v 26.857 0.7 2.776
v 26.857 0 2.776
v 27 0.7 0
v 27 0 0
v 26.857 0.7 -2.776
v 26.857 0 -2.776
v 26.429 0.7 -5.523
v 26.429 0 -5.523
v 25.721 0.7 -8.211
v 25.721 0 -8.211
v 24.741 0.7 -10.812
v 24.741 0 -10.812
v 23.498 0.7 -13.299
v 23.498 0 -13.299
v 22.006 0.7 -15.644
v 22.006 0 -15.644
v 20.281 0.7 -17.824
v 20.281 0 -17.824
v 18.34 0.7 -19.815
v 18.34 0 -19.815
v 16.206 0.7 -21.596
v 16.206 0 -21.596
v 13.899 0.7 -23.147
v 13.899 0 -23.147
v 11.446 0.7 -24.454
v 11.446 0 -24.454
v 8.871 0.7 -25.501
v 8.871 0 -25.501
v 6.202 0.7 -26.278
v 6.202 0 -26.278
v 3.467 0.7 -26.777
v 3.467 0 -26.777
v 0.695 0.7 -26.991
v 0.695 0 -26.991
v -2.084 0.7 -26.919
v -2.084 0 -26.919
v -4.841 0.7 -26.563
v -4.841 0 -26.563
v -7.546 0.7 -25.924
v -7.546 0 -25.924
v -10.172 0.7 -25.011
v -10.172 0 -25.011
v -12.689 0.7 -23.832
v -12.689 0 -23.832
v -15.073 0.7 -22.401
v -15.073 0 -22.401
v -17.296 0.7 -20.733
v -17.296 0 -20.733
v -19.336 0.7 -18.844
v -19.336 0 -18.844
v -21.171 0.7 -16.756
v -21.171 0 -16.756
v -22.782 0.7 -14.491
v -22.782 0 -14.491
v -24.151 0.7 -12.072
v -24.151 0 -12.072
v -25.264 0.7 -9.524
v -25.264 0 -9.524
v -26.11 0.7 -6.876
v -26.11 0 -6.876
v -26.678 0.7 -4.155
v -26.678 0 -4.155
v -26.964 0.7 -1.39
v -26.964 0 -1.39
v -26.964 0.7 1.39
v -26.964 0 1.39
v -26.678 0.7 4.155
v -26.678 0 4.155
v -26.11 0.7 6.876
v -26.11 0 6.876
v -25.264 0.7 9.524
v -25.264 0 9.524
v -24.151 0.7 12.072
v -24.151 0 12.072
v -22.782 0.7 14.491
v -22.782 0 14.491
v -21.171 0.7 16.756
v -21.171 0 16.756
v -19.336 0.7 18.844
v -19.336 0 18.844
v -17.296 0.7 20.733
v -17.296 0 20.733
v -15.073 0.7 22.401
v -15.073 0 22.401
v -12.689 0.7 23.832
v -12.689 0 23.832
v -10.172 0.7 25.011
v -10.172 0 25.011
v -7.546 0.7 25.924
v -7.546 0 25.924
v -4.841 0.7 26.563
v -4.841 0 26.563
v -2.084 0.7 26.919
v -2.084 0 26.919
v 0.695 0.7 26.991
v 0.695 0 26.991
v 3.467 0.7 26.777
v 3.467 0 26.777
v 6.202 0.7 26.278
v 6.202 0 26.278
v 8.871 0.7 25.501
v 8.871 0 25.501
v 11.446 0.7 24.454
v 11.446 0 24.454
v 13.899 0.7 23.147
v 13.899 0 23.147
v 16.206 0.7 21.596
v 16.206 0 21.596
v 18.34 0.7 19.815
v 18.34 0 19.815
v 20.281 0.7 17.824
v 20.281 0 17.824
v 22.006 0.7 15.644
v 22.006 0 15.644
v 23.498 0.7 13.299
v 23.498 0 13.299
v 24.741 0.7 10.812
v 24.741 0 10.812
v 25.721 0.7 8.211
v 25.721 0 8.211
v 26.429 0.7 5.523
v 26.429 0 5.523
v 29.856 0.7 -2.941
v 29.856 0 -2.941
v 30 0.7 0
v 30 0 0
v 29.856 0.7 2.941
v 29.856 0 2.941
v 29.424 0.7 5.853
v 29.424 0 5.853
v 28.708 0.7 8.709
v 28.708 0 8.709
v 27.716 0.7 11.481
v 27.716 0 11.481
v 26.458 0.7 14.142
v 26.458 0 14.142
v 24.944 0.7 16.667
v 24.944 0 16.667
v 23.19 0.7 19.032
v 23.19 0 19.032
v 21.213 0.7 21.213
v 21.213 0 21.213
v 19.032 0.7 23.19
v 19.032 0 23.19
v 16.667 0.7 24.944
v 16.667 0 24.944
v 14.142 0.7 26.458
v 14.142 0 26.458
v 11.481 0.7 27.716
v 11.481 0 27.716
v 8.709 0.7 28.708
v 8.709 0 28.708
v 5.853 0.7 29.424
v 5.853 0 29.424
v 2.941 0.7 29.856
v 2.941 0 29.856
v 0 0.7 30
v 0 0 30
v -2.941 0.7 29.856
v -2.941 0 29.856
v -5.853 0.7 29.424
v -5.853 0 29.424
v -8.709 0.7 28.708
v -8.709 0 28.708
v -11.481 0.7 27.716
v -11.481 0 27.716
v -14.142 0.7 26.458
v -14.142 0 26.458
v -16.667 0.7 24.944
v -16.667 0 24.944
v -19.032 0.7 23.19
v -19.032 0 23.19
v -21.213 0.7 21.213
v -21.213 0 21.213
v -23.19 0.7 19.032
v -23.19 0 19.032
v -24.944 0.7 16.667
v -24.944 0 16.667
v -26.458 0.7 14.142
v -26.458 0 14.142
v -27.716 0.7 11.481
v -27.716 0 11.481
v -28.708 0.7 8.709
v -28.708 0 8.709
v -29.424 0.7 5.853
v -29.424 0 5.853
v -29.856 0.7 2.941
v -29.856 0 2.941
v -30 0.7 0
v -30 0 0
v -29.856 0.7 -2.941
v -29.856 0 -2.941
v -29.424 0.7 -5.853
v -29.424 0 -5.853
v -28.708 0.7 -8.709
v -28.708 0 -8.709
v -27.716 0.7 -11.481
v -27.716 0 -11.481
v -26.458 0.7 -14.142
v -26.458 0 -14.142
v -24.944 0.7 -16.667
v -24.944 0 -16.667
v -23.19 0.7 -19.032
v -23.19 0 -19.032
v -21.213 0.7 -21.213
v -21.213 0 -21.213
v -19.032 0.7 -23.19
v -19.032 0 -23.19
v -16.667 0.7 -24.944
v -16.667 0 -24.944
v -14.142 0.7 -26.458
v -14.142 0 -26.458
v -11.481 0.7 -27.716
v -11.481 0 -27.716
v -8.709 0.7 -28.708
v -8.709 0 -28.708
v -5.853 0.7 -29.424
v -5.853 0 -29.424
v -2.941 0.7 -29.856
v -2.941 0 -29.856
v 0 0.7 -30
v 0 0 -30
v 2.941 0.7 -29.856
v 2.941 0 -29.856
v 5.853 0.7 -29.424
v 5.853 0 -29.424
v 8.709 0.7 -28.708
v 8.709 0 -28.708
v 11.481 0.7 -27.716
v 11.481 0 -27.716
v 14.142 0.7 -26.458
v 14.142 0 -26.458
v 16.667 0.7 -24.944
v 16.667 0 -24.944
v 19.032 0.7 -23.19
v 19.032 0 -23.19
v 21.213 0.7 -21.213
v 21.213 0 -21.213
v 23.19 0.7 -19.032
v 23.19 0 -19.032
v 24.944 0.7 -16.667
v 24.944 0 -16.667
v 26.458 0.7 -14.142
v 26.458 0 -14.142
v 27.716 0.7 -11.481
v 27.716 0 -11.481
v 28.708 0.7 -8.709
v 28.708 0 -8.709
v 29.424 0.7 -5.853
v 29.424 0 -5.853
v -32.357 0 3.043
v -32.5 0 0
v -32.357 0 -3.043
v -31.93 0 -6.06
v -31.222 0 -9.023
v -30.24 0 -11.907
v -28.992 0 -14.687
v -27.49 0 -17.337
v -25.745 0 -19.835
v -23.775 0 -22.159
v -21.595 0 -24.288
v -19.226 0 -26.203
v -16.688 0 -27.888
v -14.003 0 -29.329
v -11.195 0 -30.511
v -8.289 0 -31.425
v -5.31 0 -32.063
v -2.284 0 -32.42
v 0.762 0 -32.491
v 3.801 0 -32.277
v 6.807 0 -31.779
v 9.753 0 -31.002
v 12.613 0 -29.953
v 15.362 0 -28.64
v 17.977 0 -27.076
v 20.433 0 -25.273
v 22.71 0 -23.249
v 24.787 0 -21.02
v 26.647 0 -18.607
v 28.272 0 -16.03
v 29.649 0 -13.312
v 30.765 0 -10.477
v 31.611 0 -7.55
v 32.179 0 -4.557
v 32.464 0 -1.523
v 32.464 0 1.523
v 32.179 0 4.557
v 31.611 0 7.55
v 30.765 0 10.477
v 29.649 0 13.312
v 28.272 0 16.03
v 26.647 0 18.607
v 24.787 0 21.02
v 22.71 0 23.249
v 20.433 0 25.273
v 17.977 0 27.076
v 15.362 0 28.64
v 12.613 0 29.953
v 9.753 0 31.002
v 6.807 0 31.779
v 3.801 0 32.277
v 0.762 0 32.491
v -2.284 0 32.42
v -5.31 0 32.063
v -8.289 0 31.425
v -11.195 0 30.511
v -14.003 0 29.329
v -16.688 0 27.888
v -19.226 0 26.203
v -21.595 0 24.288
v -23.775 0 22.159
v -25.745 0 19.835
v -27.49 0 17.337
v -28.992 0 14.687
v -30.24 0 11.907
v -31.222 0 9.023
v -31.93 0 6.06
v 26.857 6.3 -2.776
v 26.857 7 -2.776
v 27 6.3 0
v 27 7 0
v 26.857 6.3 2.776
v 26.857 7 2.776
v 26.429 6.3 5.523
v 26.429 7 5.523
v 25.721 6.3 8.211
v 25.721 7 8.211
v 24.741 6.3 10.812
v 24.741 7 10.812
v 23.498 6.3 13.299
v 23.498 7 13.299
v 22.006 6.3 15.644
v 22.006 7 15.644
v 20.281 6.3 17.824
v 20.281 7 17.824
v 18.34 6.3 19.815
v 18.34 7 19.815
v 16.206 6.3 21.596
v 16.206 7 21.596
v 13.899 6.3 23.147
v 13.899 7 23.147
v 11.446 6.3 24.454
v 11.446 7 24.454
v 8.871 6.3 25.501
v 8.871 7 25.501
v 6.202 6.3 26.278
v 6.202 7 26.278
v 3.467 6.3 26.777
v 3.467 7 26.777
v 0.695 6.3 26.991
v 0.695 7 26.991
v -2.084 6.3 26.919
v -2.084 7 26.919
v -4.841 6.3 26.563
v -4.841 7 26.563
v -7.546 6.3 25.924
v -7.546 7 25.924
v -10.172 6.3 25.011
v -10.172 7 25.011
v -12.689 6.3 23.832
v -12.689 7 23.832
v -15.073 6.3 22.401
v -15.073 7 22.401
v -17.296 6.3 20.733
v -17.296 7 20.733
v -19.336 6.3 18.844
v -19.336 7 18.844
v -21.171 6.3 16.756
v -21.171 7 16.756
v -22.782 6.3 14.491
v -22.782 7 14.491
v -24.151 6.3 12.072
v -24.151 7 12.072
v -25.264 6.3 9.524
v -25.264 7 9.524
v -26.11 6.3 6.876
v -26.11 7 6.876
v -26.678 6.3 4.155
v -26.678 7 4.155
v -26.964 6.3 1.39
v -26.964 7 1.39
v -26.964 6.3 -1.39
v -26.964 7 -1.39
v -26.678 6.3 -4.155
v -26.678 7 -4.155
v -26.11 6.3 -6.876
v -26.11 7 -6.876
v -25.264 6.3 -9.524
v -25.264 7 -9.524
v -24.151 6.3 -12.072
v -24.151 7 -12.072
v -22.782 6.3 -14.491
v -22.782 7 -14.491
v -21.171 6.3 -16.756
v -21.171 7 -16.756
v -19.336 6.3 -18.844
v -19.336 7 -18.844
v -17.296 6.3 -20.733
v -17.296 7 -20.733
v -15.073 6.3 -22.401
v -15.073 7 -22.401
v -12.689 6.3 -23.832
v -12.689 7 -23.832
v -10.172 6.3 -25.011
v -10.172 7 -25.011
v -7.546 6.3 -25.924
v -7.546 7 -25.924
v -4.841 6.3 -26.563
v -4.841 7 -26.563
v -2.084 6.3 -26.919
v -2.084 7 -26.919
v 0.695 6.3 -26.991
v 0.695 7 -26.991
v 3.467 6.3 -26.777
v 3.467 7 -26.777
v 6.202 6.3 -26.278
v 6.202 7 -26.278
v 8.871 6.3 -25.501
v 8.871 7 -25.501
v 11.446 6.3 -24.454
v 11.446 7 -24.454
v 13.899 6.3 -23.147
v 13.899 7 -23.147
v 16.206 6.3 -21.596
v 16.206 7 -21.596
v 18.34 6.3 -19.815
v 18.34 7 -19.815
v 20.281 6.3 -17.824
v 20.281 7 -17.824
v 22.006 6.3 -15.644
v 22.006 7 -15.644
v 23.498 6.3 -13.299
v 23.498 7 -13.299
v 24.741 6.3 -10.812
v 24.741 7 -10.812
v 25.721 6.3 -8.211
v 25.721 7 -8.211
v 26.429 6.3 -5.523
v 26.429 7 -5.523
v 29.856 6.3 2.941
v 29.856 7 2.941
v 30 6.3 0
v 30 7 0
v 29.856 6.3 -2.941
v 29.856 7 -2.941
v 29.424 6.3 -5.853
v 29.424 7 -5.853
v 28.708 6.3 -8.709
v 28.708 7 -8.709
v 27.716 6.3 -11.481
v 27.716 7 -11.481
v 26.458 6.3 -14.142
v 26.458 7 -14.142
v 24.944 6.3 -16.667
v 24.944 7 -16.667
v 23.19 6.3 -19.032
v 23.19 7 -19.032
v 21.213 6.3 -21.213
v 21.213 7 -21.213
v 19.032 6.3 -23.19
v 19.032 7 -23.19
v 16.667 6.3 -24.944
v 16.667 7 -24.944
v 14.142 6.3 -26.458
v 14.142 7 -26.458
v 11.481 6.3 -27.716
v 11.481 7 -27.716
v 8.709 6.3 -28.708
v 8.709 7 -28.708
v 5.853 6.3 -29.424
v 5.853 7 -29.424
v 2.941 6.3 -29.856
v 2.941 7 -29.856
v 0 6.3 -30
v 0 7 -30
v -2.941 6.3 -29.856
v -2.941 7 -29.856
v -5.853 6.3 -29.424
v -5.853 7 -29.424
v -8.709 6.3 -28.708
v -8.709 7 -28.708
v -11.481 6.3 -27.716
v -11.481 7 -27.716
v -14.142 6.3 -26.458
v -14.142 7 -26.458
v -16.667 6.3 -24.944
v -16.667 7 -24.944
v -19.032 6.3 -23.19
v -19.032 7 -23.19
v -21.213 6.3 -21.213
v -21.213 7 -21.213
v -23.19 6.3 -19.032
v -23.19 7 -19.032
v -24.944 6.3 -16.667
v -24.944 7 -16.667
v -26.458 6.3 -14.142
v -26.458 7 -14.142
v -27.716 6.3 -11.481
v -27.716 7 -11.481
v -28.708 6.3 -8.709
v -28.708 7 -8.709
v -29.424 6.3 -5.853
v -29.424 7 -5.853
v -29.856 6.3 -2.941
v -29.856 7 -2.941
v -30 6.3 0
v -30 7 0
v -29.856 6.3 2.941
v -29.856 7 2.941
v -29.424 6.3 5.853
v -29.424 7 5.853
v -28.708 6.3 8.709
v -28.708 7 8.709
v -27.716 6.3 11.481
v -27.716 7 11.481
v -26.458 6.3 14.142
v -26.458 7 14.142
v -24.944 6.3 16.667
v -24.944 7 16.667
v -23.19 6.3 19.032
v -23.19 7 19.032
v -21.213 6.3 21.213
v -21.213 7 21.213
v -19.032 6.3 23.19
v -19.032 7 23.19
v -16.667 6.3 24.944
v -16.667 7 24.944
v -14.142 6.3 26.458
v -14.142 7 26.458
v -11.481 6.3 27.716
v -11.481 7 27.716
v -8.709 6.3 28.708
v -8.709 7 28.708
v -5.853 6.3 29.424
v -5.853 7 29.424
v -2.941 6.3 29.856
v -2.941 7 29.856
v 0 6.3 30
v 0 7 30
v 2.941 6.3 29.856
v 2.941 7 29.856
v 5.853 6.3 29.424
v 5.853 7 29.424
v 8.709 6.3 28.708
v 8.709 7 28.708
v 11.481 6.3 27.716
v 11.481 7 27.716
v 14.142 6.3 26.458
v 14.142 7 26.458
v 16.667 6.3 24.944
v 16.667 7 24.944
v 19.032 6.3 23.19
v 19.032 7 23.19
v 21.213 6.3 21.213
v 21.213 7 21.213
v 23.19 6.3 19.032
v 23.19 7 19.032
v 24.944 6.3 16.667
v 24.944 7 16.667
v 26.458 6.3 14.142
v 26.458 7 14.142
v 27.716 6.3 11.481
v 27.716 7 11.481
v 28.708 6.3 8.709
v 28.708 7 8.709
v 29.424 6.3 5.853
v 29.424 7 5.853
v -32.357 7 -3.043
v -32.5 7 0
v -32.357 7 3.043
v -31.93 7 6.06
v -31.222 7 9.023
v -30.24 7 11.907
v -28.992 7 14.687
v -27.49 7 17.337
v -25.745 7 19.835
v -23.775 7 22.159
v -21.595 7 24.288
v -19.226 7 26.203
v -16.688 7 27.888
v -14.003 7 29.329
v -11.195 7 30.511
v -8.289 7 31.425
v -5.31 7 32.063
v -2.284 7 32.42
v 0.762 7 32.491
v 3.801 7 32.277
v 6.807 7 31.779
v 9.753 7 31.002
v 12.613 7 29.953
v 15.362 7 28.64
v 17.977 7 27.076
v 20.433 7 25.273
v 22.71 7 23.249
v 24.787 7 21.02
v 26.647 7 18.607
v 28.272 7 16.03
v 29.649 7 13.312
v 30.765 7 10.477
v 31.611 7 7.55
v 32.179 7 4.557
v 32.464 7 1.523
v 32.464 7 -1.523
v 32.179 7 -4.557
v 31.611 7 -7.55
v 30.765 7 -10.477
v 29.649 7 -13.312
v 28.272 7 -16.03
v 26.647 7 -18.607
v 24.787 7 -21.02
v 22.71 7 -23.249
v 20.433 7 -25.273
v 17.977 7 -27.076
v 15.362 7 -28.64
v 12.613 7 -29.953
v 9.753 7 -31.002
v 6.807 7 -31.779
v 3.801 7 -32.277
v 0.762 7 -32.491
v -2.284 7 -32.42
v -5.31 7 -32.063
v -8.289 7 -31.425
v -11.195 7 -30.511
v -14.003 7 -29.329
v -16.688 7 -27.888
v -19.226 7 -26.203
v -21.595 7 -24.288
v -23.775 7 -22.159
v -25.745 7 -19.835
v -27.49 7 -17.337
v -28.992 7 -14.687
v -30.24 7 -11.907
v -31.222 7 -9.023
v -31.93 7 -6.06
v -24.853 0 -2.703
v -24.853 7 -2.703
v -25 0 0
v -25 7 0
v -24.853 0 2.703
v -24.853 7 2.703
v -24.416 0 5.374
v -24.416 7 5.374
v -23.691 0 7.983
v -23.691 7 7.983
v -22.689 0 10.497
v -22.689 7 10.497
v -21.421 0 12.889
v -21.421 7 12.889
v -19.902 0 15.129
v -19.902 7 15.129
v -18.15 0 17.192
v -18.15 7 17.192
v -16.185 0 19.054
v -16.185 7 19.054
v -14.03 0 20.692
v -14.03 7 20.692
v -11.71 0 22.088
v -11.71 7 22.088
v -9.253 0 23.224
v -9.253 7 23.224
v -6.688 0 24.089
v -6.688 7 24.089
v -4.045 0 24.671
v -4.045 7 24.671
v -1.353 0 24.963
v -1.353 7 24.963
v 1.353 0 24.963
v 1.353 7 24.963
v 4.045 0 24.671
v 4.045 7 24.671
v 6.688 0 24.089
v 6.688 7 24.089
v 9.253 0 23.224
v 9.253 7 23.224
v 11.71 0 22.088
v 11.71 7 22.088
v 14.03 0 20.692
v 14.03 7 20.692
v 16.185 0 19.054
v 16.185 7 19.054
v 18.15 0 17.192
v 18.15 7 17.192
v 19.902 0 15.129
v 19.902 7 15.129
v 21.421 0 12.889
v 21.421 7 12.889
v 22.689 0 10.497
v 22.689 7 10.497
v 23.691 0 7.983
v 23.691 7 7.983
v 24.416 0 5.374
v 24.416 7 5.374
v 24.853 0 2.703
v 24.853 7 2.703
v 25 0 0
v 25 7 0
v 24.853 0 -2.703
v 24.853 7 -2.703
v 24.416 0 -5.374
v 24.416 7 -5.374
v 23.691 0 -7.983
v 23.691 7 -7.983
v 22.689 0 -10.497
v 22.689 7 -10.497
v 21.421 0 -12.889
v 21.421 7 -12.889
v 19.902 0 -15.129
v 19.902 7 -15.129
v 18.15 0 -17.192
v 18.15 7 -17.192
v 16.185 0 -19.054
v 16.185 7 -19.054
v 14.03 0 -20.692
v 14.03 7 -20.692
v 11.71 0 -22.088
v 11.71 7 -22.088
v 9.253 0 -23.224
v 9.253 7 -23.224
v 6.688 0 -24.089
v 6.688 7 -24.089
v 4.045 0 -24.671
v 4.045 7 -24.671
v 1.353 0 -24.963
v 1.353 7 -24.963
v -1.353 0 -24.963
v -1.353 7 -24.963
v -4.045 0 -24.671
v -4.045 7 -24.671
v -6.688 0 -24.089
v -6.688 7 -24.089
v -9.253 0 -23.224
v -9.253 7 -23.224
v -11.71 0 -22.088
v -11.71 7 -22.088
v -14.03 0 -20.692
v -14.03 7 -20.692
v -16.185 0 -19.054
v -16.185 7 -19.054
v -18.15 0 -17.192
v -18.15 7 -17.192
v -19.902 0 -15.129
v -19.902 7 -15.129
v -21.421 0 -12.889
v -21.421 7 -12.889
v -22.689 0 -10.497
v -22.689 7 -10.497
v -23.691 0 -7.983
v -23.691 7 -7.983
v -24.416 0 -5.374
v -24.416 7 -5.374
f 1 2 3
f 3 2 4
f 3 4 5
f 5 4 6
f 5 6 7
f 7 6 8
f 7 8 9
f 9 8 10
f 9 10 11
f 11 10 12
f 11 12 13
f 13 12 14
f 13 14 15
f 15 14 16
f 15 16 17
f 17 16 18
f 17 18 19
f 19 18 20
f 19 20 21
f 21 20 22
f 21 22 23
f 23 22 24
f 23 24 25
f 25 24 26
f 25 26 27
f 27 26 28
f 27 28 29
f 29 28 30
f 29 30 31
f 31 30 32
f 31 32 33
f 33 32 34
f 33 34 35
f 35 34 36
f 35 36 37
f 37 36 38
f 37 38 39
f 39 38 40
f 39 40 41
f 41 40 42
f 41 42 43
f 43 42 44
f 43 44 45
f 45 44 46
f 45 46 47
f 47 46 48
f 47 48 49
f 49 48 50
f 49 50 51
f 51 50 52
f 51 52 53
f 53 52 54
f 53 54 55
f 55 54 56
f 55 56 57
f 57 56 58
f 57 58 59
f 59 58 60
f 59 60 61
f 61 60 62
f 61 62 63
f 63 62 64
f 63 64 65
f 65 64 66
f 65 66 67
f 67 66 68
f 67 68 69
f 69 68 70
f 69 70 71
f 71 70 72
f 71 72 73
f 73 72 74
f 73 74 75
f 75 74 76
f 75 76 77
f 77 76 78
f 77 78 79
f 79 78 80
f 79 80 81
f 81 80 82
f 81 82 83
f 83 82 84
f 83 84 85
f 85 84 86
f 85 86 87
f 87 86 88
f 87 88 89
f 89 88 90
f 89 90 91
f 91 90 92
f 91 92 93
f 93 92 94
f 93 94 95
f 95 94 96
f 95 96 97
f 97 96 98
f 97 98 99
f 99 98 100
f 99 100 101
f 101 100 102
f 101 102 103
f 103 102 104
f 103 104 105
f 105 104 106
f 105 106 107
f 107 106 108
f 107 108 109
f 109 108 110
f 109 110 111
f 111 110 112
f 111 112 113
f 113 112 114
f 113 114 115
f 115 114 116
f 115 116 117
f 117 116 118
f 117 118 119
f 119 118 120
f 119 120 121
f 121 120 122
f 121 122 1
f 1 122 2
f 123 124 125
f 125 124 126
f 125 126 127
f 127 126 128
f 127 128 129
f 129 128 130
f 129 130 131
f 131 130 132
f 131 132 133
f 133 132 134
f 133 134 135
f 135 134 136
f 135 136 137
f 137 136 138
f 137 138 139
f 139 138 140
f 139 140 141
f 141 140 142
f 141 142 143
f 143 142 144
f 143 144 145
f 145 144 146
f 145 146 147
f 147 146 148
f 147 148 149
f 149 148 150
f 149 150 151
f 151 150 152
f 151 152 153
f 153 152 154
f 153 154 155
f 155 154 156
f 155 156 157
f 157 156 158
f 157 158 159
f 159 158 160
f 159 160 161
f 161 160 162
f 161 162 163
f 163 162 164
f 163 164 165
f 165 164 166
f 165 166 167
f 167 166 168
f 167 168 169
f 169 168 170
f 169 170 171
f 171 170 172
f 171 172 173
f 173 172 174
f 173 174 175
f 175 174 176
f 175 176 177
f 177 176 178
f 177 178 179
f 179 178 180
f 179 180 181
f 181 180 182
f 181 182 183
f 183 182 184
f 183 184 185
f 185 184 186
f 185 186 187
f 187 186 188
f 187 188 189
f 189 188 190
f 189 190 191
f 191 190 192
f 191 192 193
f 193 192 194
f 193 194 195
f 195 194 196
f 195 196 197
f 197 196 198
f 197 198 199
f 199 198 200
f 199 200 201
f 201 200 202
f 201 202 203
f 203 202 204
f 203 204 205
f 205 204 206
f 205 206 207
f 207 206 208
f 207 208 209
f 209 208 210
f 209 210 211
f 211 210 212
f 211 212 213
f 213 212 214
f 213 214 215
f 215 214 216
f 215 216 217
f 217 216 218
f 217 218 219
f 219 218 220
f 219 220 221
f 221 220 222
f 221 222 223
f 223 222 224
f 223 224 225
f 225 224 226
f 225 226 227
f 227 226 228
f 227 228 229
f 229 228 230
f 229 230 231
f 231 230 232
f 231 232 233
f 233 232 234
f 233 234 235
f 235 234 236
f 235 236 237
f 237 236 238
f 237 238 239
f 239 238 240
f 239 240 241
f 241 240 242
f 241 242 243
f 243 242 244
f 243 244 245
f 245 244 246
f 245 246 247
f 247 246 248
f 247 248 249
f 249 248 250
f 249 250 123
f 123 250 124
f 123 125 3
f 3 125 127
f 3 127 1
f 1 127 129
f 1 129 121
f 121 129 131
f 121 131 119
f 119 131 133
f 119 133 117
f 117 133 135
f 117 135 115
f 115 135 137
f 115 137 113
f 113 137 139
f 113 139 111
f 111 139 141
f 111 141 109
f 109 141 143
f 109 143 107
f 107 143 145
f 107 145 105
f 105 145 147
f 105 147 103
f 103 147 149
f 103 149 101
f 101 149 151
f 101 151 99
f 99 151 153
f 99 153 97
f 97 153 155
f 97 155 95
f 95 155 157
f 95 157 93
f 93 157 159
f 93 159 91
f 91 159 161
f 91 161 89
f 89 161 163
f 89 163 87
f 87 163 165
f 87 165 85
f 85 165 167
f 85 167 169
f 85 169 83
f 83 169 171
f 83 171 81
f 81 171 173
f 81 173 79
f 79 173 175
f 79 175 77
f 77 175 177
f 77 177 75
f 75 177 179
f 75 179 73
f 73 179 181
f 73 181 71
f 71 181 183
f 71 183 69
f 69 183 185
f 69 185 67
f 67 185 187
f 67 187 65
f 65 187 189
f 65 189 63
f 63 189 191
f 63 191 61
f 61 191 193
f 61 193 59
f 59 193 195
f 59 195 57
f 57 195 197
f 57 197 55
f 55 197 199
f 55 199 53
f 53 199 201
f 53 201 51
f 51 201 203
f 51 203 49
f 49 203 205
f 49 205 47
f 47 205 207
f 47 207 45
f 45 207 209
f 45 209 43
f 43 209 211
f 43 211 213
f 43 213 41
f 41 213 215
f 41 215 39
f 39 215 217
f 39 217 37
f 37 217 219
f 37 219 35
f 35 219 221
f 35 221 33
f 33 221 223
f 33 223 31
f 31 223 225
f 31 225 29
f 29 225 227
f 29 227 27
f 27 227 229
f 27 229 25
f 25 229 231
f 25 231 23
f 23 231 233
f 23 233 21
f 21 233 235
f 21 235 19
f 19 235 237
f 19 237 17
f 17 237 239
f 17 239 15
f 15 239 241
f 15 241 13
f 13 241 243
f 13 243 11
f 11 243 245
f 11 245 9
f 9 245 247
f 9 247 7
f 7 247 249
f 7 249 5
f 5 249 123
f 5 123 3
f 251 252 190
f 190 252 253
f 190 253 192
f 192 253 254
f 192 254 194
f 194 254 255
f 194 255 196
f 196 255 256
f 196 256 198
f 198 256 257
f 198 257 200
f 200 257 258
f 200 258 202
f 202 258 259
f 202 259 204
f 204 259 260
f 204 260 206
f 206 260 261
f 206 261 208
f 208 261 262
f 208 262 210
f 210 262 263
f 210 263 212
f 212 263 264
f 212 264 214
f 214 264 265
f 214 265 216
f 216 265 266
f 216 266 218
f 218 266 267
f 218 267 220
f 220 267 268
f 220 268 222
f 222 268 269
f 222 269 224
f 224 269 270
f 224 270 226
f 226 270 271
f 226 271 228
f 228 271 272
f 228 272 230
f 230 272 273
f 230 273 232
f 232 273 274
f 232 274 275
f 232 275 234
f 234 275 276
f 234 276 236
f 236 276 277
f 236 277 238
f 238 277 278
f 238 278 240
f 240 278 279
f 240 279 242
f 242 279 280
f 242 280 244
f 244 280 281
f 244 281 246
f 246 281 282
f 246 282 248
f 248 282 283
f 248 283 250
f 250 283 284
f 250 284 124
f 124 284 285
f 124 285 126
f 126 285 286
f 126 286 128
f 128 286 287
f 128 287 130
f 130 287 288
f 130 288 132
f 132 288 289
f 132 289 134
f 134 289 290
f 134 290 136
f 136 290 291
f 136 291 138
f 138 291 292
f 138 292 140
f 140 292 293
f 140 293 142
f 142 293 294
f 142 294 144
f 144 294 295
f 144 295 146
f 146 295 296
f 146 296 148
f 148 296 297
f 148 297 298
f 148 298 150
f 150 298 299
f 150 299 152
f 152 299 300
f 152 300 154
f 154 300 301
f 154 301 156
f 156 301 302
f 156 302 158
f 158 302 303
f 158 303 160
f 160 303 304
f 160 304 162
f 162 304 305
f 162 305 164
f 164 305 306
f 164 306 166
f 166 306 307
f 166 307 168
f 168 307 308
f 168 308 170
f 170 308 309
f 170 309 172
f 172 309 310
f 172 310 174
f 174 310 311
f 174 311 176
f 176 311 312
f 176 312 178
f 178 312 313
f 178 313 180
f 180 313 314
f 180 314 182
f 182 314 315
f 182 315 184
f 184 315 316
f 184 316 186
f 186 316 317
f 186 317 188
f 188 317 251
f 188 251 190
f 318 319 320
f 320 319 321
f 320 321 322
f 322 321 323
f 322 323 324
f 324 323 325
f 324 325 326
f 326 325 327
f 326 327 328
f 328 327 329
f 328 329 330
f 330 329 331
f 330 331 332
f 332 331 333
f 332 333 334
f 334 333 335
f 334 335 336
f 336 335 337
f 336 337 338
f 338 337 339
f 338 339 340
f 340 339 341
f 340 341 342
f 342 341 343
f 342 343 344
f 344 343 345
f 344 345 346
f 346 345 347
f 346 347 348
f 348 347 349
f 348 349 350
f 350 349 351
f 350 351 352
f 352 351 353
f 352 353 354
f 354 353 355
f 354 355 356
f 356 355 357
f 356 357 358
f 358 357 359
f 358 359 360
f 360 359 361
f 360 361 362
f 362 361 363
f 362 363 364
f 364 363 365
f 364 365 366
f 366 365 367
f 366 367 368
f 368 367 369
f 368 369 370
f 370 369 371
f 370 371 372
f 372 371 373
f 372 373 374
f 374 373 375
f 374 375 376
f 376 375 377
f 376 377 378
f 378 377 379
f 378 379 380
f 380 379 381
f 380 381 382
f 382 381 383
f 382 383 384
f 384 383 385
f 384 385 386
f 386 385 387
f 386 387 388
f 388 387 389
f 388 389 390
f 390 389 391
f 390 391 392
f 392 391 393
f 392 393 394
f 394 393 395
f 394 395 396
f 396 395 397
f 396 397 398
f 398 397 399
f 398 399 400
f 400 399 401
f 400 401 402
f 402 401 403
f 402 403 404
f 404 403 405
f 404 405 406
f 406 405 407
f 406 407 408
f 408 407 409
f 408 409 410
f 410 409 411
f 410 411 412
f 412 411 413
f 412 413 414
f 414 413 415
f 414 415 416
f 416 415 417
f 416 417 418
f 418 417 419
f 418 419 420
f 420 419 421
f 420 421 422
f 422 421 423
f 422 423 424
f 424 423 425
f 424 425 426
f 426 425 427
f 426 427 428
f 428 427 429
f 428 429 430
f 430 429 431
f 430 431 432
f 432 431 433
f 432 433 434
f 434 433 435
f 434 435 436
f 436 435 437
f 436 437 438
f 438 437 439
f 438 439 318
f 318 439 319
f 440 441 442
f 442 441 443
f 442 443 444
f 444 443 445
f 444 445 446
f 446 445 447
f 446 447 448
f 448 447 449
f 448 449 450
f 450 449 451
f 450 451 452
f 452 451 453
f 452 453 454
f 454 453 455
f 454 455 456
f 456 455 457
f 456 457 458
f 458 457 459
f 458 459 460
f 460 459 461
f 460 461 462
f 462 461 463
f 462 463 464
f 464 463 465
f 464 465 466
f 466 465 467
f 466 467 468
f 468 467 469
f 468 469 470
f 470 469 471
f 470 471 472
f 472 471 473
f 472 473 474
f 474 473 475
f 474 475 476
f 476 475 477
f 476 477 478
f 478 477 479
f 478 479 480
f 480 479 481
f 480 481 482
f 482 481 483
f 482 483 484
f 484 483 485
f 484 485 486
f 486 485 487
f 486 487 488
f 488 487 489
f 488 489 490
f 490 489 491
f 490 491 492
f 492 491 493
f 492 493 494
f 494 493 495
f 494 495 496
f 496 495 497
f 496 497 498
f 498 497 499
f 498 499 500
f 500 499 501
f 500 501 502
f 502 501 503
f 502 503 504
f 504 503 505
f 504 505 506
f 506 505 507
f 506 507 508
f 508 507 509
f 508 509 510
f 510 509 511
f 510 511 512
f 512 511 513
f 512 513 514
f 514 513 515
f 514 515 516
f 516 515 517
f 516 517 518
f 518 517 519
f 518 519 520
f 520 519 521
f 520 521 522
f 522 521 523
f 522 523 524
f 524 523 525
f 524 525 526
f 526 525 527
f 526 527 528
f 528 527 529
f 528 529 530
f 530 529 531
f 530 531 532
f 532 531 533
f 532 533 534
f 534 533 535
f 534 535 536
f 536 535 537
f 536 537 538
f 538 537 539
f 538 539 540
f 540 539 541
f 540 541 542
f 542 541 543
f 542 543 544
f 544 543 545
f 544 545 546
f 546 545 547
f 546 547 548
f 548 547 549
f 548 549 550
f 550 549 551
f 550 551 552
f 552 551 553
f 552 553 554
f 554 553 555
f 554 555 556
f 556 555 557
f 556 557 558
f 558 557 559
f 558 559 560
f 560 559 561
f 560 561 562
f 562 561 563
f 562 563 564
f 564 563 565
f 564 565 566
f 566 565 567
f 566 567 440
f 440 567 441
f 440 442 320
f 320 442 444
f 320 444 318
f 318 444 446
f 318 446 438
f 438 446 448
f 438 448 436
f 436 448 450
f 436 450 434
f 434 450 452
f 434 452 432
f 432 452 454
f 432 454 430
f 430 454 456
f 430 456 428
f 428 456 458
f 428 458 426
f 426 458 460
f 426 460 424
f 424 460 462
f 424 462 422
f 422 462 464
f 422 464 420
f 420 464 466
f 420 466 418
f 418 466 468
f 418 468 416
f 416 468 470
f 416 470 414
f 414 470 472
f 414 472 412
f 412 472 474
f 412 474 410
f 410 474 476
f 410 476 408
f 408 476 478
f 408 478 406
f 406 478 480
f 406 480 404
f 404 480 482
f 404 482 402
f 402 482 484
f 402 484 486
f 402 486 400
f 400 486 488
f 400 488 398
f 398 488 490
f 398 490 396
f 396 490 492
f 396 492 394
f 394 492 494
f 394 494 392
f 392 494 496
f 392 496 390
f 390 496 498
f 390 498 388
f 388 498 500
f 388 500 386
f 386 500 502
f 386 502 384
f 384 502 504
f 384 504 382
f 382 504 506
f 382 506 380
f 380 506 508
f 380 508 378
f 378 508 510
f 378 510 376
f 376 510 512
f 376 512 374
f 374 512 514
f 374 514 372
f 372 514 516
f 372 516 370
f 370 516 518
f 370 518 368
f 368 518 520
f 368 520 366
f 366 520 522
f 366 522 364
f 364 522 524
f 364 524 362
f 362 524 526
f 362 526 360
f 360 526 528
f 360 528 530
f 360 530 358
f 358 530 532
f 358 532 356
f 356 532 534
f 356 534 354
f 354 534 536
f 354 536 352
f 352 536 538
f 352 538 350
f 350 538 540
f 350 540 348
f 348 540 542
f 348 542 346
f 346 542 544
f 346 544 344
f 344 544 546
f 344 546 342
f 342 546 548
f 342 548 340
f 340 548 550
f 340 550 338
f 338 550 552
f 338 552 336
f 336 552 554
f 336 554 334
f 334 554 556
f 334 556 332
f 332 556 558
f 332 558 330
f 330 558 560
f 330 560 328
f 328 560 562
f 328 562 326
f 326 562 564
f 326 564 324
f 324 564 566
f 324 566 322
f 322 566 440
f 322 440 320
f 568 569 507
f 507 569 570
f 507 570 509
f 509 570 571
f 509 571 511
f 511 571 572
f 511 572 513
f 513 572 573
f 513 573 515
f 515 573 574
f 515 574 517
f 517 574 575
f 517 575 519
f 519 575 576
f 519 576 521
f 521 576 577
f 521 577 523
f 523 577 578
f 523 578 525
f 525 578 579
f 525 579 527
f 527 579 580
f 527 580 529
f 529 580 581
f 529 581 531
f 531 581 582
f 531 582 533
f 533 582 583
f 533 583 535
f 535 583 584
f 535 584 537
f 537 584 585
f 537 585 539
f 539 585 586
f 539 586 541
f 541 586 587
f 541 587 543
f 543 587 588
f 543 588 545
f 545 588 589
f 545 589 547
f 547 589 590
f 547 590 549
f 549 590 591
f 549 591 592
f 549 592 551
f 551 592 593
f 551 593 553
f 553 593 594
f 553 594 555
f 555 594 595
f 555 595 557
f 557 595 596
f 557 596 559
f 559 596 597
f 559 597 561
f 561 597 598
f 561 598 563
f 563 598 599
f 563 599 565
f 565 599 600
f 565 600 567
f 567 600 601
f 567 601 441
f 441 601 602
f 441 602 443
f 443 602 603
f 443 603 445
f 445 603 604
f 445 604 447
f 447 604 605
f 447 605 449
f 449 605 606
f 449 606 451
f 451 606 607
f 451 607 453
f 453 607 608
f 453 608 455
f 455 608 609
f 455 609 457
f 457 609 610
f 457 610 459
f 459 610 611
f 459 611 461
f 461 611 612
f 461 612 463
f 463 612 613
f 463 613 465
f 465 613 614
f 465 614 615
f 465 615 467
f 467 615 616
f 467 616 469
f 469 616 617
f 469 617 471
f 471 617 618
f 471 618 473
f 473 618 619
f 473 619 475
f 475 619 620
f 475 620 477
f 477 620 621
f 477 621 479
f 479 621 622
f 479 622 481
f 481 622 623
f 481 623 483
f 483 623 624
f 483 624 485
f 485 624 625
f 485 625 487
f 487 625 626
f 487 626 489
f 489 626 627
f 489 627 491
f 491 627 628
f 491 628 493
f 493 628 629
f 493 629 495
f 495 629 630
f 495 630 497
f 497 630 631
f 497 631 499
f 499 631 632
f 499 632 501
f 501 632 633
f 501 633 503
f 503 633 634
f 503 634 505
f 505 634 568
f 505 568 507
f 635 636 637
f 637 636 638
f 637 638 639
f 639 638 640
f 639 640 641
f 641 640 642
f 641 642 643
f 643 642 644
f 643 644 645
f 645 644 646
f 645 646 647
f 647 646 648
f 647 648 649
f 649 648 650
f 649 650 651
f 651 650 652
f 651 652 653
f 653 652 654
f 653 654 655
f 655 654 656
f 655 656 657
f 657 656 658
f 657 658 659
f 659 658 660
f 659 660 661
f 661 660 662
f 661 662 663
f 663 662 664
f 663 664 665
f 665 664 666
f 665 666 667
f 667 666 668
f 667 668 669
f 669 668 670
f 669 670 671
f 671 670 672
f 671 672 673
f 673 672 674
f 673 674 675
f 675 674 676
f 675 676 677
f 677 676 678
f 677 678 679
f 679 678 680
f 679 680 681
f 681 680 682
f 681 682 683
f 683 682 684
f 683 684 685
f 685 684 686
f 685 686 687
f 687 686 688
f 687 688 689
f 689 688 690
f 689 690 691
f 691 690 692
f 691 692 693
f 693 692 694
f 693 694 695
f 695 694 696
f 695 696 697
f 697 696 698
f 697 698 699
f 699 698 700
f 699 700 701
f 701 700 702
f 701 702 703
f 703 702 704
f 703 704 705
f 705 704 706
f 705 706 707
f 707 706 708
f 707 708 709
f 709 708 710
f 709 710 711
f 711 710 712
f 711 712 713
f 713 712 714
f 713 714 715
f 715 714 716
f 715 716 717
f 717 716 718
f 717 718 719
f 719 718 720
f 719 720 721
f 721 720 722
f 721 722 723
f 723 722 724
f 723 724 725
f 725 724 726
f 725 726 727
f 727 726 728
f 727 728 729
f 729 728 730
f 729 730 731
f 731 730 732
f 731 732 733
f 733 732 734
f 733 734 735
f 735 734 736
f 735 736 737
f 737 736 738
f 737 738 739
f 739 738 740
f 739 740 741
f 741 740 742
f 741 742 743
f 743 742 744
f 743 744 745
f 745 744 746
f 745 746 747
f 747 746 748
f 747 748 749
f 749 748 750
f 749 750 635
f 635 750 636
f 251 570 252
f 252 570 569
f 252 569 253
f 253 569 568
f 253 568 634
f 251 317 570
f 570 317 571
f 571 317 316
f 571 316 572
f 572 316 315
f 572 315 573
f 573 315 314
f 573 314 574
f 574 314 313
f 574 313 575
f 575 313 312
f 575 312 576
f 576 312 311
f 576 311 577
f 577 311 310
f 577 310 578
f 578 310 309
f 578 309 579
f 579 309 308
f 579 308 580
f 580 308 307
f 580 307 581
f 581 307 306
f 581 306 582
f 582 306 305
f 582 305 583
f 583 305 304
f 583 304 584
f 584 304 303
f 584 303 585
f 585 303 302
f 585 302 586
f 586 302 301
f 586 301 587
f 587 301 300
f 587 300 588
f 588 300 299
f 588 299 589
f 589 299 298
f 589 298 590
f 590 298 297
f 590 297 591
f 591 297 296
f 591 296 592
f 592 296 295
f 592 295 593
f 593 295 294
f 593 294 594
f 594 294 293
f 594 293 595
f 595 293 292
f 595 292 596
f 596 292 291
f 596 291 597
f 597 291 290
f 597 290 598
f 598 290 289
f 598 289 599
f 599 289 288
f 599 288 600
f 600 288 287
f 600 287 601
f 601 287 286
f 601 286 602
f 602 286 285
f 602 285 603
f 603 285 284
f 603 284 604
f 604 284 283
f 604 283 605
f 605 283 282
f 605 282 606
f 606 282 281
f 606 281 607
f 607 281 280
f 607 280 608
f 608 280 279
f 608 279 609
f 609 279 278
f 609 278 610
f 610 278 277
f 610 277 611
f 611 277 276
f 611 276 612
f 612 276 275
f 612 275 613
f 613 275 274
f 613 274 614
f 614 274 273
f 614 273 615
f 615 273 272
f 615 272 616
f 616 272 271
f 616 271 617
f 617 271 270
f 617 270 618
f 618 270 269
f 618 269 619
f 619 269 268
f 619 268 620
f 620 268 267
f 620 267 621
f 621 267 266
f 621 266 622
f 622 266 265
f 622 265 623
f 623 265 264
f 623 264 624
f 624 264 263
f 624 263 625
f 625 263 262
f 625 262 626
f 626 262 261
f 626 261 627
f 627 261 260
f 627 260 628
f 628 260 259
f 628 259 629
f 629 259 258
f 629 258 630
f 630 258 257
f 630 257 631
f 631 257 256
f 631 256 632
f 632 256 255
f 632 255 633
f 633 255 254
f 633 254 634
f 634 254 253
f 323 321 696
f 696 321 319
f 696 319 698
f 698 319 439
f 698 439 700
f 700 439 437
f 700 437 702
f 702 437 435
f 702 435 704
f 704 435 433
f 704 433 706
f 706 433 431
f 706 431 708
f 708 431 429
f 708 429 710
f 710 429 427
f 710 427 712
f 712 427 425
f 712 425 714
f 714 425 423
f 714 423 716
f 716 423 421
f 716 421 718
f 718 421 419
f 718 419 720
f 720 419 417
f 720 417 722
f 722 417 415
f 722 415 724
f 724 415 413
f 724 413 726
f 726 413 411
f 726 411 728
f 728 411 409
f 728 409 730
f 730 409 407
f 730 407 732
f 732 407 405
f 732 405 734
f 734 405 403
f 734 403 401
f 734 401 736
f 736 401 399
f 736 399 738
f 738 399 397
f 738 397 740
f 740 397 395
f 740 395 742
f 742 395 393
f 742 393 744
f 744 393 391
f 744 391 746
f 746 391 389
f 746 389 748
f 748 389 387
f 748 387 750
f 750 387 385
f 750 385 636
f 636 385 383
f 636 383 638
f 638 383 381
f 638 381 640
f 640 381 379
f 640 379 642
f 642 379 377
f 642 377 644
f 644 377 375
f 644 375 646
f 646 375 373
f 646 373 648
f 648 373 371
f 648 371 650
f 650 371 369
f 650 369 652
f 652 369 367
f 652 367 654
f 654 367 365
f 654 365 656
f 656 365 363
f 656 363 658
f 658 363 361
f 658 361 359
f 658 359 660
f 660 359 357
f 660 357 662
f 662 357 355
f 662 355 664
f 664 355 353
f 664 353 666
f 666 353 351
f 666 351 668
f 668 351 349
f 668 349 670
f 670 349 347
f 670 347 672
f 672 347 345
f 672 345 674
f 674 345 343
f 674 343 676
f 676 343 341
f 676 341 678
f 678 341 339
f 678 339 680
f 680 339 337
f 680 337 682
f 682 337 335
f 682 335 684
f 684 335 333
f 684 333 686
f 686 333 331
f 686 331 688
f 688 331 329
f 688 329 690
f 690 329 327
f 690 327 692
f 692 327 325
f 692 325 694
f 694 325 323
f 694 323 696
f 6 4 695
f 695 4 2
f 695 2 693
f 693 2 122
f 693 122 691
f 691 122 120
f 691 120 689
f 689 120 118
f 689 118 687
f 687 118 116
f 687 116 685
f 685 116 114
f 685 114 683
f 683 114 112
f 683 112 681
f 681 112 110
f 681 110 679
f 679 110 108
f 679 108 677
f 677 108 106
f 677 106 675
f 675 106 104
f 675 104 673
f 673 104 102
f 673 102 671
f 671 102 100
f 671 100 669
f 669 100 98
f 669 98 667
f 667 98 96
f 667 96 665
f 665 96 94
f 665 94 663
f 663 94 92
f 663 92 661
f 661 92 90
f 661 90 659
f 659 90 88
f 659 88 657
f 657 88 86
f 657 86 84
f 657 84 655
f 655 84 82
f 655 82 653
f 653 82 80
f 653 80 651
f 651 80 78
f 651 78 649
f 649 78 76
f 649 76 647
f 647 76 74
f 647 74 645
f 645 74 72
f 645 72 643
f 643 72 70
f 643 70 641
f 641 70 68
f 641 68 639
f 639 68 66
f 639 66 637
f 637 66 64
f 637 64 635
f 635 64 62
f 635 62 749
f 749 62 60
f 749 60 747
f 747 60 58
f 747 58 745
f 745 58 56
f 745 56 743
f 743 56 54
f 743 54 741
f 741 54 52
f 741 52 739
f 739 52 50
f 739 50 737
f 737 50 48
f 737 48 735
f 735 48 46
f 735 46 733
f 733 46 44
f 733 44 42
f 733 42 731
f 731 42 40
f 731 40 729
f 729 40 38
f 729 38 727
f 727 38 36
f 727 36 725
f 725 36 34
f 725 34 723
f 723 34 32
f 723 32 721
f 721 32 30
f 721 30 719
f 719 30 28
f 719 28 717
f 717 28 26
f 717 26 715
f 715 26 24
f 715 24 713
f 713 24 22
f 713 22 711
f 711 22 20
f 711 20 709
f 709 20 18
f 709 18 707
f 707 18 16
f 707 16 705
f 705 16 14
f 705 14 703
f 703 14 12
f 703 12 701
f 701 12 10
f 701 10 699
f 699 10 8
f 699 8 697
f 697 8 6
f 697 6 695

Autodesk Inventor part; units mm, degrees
ref_plane "YZ Plane" through (0, 0, 0) normal (1, 0, 0) x (0, 1, 0)
ref_plane "XZ Plane" through (0, 0, 0) normal (0, 1, 0) x (-1, 0, 0)
ref_plane "XY Plane" through (0, 0, 0) normal (0, 0, 1) x (1, 0, 0)
sketch "Sketch1" plane through (0, 0, 0) normal (0, 1, 0) x (-1, 0, 0)
  circle A0 centre (0, 0) radius 25
  circle A1 centre (0, 0) radius 32.5
  dimension "d0" = 50
  dimension "d1" = 65
extrude "Extrusion1" add sketch "Sketch1" along normal blind 7
sketch "Sketch2" plane through (0, 7, 0) normal (0, 1, 0) x (1, 0, 0)
  circle A0 centre (0, 0) radius 27
  circle A1 centre (0, 0) radius 30
  dimension "d4" = 54
  dimension "d5" = 60
extrude "Extrusion2" cut sketch "Sketch2" against normal blind 0.7
sketch "Sketch3" plane through (0, 0, 0) normal (0, -1, 0) x (1, 0, 0)
  circle A0 centre (0, 0) radius 27 projected
  circle A1 centre (0, 0) radius 30 projected
extrude "Extrusion3" cut sketch "Sketch3" against normal blind 0.7
properties part number "bearing_6810zz" material "Stainless Steel, Austenitic"
